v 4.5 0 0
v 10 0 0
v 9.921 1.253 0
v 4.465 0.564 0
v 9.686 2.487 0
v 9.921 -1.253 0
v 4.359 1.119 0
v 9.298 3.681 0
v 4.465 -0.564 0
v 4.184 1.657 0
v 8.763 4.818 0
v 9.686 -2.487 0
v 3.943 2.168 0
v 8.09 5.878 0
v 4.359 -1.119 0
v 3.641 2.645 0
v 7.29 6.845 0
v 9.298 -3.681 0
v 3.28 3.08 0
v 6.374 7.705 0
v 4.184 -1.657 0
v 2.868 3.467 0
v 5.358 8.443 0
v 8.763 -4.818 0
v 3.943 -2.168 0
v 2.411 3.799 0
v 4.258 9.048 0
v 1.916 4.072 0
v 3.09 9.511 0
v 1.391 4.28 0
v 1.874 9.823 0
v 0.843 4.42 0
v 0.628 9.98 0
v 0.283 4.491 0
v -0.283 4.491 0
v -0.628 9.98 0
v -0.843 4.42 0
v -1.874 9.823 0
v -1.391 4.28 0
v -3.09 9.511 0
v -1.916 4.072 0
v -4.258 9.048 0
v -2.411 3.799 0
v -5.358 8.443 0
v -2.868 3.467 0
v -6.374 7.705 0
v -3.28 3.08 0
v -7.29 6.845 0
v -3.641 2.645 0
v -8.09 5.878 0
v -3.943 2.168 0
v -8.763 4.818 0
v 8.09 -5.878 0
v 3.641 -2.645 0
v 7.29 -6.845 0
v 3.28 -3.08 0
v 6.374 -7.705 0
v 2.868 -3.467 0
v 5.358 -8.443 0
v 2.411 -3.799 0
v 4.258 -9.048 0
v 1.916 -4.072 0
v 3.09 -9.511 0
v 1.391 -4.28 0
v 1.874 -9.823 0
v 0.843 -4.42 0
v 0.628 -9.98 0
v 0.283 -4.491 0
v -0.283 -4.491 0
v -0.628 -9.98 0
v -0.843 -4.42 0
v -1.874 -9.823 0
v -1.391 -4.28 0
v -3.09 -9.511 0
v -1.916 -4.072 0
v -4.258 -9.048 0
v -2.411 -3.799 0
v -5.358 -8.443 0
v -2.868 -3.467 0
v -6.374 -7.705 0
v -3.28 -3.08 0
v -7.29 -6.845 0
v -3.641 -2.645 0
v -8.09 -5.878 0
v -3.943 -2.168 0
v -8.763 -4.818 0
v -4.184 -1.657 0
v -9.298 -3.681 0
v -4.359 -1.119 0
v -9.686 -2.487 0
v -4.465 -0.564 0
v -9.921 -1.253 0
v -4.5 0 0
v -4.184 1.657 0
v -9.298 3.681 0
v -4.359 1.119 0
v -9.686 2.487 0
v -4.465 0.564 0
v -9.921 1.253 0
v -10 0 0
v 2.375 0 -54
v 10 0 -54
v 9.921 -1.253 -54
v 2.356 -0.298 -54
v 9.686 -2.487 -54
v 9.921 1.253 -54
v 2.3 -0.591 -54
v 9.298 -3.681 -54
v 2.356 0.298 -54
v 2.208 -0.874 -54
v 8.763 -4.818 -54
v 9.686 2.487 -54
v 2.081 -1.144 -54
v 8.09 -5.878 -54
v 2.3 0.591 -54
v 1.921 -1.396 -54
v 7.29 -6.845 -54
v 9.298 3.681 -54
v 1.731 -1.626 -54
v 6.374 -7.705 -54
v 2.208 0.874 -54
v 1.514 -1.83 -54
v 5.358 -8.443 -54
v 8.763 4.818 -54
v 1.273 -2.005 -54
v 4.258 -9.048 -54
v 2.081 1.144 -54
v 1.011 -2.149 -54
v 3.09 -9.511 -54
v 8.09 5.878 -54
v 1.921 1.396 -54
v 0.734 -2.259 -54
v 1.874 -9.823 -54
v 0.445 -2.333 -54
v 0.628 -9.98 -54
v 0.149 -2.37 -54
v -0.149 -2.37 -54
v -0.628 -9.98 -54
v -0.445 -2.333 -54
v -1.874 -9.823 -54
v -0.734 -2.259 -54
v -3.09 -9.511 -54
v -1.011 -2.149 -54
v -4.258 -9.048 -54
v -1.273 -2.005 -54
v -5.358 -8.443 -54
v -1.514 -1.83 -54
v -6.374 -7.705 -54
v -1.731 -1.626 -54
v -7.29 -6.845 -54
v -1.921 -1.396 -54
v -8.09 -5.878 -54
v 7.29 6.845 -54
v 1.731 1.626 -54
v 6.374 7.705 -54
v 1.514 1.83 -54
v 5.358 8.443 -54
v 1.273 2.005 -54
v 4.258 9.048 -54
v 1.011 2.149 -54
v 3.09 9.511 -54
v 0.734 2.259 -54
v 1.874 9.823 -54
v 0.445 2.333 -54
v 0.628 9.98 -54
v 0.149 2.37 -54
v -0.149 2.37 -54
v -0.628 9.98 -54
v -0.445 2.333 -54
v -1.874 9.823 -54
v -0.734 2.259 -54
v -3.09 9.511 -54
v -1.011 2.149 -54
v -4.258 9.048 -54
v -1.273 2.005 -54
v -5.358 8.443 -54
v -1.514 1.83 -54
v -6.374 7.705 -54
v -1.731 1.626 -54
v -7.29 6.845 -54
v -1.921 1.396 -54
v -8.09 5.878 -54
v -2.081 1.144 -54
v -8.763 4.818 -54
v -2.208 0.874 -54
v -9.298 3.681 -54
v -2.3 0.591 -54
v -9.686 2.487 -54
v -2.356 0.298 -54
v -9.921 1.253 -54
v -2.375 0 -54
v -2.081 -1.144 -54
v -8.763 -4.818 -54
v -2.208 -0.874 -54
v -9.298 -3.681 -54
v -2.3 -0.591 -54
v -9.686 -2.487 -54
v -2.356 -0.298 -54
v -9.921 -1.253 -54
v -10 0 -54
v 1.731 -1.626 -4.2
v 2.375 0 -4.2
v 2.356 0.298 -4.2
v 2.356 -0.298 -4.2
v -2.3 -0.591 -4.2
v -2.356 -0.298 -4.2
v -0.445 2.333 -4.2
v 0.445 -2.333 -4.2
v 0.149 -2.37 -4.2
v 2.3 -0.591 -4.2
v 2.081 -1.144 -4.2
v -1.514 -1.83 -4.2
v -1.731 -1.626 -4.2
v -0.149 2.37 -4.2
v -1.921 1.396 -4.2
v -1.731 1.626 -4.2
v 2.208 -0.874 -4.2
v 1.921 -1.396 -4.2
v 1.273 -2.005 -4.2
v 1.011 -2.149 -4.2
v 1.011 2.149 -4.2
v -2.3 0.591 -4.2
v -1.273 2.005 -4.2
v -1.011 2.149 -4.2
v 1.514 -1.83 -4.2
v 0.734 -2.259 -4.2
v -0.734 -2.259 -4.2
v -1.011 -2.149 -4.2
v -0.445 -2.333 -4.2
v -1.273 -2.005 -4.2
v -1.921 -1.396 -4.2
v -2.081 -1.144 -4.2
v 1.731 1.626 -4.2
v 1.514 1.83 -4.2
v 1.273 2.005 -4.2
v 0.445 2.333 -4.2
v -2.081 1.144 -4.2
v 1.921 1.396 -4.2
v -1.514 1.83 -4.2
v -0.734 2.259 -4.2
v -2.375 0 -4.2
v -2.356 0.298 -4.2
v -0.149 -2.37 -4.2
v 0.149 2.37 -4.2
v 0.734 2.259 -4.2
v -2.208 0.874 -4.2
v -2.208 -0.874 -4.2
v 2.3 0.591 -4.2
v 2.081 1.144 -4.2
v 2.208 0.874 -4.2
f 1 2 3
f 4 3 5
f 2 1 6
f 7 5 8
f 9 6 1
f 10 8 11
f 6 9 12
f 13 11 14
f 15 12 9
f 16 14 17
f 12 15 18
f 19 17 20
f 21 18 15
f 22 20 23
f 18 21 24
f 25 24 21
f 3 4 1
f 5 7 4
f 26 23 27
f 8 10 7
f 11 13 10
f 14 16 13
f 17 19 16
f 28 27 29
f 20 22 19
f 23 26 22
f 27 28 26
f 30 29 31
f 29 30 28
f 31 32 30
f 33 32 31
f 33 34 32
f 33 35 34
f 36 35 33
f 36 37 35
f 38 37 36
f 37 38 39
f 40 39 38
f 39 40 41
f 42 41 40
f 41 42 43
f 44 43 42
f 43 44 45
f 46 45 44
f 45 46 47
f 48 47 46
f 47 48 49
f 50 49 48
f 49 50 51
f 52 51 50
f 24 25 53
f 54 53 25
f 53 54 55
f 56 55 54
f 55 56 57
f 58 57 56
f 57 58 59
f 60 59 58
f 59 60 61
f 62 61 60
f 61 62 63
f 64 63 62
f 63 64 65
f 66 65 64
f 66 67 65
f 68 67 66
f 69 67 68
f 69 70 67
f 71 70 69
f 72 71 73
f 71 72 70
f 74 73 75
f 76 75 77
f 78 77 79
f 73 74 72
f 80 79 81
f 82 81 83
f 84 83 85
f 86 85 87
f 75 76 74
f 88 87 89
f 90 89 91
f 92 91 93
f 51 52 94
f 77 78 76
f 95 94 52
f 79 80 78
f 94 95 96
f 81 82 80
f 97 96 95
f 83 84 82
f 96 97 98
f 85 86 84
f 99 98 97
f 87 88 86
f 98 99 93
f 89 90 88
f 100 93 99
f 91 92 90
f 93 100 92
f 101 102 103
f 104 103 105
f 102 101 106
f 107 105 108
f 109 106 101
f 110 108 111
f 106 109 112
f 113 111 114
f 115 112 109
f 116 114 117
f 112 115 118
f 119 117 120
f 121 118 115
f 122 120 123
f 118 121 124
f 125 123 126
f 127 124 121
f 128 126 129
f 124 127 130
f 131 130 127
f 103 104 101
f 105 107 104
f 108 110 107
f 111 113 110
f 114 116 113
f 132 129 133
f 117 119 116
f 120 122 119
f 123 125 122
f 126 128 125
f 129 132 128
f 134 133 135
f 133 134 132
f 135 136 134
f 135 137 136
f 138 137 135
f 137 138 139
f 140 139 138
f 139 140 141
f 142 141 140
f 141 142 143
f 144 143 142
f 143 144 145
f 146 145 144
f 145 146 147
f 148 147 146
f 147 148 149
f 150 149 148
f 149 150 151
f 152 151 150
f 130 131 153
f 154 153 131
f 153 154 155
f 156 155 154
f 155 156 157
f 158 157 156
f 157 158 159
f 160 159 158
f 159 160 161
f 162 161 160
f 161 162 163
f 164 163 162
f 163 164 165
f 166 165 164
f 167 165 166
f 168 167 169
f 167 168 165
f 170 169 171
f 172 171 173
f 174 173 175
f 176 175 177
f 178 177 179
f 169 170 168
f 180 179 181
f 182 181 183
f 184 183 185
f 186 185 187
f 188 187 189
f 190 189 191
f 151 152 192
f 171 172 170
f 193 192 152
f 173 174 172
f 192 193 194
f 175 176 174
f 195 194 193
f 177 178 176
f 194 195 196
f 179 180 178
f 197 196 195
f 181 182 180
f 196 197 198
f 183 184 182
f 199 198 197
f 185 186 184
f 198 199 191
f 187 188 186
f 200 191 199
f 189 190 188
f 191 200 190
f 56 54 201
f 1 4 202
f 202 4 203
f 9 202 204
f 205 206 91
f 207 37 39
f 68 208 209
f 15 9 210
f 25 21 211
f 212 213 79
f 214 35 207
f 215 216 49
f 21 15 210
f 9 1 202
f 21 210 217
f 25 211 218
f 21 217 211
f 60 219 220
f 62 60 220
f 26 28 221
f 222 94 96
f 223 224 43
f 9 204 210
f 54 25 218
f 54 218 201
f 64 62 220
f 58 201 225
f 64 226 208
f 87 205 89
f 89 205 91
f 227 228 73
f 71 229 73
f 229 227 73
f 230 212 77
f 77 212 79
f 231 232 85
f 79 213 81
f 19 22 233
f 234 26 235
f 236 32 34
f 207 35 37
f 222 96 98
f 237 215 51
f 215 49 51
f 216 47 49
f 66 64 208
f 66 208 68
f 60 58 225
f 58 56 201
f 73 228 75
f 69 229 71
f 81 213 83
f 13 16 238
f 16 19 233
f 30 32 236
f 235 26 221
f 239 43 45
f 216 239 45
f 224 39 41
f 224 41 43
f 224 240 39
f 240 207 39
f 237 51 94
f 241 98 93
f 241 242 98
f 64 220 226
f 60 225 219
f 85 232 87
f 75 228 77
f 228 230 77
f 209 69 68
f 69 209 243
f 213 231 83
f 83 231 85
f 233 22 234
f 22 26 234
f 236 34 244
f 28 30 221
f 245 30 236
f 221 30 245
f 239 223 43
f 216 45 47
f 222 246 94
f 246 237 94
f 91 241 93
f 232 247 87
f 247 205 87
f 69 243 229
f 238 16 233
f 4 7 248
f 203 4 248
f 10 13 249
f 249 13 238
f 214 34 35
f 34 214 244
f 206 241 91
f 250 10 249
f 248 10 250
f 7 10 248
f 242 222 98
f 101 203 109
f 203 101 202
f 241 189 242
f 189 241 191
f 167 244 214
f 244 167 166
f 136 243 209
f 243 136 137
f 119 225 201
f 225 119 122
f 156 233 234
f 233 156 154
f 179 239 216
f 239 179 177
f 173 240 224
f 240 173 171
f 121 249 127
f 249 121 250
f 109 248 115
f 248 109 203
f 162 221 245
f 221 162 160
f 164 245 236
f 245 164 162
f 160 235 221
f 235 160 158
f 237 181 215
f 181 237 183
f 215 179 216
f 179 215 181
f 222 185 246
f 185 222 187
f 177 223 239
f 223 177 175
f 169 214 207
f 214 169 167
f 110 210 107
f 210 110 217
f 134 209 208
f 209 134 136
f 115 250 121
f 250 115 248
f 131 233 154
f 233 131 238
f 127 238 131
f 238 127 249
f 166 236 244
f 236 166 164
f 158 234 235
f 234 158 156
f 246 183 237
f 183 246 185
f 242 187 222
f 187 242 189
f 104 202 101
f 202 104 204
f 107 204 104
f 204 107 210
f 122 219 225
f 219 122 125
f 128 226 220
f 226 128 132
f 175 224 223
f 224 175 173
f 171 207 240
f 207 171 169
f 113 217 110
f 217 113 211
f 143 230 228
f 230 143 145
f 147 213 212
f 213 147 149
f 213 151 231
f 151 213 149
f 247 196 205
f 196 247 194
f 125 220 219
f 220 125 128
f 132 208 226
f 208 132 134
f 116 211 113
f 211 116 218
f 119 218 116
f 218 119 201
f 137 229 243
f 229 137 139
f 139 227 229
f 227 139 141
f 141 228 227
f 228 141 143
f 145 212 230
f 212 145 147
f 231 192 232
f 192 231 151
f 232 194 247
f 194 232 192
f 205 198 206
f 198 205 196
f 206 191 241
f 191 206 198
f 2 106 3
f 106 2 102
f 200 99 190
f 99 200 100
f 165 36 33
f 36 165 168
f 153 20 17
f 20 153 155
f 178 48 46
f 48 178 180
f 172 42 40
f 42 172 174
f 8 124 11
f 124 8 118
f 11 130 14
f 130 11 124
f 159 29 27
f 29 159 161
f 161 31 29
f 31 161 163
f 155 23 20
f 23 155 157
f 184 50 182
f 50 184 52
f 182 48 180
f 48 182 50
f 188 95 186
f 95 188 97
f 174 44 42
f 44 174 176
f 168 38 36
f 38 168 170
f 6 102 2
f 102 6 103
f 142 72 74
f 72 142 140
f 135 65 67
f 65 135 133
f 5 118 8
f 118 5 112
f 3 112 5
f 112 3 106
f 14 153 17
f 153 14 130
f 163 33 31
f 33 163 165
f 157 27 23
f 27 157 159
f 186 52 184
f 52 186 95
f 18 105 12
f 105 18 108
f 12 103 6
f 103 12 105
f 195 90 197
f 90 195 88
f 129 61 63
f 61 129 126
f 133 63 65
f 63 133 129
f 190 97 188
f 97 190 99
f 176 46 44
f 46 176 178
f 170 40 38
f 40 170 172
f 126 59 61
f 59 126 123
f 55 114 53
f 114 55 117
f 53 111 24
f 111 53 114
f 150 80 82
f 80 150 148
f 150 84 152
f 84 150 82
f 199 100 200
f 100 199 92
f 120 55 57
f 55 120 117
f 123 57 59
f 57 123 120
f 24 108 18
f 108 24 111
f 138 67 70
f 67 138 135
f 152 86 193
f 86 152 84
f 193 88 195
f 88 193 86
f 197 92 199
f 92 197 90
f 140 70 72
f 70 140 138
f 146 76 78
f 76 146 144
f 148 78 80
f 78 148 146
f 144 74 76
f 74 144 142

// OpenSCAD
$fn = 50;


difference() {
	union() {
		translate(v = [0, 0, -54.0000000000]) {
			cylinder(h = 54, r = 10.0000000000);
		}
		cylinder(h = 0, r = 16.0000000000);
	}
	union() {
		translate(v = [0, 0, 0]) {
			rotate(a = [0, 0, 0]) {
				difference() {
					union() {
						#translate(v = [0, 0, -54.0000000000]) {
							cylinder(h = 54, r = 2.2500000000);
						}
						#translate(v = [0, 0, -4.2000000000]) {
							cylinder(h = 4.2000000000, r = 10.0000000000, r1 = 2.3750000000, r2 = 4.5000000000);
						}
						#translate(v = [0, 0, -54.0000000000]) {
							cylinder(h = 54, r = 2.3750000000);
						}
						#translate(v = [0, 0, -54.0000000000]) {
							cylinder(h = 54, r = 2.2500000000);
						}
					}
					union();
				}
			}
		}
	}
}
